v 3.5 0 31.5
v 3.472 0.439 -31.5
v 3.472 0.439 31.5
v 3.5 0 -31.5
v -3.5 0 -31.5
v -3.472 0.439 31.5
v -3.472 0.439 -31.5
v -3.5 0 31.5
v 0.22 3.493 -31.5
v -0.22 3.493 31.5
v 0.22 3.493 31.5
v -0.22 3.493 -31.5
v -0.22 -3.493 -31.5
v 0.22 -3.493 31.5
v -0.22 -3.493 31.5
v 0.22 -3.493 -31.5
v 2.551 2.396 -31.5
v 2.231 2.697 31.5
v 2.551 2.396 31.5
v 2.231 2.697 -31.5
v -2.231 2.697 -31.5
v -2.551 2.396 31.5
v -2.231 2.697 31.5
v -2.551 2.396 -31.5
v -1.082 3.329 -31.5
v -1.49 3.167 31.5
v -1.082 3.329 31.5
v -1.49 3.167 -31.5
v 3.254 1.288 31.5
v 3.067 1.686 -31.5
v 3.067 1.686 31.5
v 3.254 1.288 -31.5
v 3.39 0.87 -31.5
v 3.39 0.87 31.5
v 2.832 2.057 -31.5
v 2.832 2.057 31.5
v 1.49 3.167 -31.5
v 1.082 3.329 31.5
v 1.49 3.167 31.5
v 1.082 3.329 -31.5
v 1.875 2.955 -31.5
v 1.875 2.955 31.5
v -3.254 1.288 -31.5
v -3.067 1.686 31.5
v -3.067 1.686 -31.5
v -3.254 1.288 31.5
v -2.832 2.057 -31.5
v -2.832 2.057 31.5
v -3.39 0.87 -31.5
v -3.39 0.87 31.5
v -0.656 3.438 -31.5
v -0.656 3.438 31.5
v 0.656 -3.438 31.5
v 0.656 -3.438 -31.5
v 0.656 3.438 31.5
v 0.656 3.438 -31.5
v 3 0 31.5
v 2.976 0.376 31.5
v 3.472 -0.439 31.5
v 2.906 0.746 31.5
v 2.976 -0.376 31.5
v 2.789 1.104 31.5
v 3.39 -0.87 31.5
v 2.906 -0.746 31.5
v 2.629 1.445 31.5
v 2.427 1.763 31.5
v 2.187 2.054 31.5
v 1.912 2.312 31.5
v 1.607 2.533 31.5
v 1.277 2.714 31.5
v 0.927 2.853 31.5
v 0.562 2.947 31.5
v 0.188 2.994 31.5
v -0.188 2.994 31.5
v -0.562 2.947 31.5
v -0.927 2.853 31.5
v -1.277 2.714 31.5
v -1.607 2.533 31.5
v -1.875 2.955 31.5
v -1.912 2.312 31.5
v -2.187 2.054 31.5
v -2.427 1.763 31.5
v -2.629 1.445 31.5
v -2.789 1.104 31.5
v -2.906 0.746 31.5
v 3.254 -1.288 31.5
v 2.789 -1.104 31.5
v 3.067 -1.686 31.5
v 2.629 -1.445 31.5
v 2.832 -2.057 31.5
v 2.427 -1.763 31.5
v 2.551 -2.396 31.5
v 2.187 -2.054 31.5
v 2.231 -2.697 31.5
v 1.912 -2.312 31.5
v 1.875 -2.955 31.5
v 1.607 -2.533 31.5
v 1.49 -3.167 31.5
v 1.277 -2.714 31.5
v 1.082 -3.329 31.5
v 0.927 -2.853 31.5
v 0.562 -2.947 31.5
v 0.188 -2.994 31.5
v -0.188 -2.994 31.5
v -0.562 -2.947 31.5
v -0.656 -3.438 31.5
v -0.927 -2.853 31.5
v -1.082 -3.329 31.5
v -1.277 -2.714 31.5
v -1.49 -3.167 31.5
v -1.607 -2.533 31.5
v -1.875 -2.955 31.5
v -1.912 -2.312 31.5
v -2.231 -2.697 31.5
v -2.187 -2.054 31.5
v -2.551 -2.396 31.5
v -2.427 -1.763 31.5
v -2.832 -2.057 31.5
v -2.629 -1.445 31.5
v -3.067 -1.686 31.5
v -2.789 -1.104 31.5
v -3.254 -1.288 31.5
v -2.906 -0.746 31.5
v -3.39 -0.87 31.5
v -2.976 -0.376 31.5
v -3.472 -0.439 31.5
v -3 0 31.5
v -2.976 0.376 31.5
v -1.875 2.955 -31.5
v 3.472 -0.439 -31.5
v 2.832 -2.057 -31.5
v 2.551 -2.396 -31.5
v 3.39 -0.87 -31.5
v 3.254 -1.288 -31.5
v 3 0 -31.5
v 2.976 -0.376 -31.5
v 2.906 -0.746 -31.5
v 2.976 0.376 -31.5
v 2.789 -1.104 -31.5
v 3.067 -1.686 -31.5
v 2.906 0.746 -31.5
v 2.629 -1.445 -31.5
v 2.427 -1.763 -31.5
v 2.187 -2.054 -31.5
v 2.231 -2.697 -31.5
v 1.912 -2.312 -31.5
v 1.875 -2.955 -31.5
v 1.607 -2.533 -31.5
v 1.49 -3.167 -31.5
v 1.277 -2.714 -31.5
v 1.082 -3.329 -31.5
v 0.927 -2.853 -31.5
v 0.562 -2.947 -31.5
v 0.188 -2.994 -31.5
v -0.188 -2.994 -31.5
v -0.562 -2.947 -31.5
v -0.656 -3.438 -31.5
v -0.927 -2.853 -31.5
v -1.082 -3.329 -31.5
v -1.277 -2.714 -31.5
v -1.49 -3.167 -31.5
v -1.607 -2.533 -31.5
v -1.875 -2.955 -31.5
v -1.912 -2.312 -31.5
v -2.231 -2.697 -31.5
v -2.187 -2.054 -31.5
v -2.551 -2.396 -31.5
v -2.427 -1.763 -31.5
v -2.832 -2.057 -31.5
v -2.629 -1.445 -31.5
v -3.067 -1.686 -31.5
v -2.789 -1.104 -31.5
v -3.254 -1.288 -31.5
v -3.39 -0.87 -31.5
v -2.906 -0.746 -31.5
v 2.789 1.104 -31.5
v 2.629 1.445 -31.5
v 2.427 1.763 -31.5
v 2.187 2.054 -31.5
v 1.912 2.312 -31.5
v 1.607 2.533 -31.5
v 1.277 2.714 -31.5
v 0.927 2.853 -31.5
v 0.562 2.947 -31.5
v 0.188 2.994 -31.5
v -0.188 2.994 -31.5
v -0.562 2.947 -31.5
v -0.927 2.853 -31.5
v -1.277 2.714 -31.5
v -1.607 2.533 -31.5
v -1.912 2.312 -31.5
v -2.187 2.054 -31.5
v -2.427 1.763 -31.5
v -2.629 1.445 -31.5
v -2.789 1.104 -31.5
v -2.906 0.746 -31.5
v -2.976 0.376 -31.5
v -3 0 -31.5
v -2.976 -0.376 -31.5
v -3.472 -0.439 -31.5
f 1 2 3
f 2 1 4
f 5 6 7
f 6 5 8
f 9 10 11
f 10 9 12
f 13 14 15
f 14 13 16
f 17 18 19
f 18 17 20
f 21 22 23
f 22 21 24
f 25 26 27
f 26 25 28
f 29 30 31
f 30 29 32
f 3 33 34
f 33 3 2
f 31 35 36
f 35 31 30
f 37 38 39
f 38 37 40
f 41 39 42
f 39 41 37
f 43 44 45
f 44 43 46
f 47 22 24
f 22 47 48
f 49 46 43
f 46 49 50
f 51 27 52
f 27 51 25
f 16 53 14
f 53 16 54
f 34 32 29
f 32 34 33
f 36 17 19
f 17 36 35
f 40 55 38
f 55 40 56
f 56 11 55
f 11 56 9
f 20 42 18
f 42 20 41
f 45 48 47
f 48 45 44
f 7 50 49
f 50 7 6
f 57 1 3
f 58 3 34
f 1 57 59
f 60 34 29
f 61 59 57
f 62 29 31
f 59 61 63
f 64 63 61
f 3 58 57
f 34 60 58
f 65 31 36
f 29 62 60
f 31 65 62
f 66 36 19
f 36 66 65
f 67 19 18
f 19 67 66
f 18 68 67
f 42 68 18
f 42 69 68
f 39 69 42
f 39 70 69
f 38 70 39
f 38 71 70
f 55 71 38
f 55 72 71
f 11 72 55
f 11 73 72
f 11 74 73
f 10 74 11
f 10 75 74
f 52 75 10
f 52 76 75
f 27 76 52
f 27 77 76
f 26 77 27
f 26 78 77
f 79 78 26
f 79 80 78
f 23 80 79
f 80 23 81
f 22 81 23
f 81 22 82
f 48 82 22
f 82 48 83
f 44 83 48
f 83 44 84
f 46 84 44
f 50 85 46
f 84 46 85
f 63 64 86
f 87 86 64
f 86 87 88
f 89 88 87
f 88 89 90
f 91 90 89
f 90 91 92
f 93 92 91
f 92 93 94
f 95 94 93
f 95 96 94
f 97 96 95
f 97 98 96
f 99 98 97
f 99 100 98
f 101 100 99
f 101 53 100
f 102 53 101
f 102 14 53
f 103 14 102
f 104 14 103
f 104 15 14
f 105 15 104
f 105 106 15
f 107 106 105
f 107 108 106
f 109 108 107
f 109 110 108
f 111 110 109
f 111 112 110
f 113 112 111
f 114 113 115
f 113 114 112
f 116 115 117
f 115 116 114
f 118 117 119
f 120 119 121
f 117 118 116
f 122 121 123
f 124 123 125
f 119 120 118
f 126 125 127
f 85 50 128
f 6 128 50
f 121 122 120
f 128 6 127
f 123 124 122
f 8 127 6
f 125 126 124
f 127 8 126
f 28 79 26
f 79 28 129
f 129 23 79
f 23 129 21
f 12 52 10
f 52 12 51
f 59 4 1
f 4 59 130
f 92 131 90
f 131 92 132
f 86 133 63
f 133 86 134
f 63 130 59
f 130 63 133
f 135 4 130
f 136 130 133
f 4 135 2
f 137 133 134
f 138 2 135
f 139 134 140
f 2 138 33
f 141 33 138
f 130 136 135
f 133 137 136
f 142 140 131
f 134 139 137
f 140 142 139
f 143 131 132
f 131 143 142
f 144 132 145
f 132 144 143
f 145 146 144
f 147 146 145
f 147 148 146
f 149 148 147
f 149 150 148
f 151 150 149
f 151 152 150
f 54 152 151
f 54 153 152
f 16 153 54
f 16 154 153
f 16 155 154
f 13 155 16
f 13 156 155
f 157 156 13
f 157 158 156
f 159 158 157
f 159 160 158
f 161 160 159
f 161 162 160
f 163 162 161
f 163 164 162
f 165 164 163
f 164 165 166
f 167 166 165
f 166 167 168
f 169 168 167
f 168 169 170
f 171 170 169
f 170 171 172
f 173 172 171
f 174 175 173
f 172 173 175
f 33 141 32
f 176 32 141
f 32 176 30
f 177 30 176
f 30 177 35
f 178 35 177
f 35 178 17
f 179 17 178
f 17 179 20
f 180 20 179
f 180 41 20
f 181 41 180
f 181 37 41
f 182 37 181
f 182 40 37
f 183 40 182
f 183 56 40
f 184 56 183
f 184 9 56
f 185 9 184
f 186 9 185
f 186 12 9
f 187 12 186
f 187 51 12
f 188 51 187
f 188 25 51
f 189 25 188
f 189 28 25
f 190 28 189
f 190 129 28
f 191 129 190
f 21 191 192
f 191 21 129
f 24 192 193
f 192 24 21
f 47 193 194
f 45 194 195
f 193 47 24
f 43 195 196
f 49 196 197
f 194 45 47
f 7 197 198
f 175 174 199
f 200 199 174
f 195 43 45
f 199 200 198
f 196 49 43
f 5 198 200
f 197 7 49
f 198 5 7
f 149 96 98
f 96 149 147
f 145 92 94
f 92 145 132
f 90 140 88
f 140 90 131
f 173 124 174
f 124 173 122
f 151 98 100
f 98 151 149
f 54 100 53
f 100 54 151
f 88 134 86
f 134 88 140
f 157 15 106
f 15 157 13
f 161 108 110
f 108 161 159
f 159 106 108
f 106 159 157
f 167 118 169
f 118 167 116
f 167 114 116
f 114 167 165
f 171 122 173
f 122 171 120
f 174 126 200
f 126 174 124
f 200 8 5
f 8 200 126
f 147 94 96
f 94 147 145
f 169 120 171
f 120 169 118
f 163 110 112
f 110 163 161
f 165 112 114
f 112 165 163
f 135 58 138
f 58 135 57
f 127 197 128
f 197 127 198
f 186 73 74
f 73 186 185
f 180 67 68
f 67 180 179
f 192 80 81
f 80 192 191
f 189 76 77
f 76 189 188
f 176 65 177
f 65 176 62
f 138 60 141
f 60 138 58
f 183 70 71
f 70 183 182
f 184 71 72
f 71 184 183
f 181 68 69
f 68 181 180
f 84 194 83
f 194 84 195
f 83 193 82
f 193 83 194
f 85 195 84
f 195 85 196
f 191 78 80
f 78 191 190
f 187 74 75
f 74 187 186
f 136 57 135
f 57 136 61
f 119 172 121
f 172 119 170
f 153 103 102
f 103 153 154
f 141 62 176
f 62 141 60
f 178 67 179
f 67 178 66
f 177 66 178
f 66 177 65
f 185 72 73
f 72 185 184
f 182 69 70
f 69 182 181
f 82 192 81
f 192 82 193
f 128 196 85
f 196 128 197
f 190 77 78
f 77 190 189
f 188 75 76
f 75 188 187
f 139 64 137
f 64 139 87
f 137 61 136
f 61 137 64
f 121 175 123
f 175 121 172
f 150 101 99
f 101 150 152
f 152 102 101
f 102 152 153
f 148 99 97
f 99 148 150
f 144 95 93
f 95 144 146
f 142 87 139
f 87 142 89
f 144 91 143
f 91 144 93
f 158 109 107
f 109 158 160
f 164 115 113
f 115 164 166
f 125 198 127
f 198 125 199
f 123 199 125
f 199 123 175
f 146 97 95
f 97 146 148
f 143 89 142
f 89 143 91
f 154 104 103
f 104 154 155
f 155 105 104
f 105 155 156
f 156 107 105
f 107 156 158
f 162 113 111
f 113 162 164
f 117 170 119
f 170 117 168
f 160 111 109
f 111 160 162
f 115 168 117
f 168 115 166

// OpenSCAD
$fn = 50;


difference() {
	union() {
		translate(v = [0, 0, -31.5000000000]) {
			cylinder(h = 63, r = 3.5000000000);
		}
	}
	union() {
		translate(v = [0, 0, -100.0000000000]) {
			cylinder(h = 200, r = 3);
		}
	}
}
